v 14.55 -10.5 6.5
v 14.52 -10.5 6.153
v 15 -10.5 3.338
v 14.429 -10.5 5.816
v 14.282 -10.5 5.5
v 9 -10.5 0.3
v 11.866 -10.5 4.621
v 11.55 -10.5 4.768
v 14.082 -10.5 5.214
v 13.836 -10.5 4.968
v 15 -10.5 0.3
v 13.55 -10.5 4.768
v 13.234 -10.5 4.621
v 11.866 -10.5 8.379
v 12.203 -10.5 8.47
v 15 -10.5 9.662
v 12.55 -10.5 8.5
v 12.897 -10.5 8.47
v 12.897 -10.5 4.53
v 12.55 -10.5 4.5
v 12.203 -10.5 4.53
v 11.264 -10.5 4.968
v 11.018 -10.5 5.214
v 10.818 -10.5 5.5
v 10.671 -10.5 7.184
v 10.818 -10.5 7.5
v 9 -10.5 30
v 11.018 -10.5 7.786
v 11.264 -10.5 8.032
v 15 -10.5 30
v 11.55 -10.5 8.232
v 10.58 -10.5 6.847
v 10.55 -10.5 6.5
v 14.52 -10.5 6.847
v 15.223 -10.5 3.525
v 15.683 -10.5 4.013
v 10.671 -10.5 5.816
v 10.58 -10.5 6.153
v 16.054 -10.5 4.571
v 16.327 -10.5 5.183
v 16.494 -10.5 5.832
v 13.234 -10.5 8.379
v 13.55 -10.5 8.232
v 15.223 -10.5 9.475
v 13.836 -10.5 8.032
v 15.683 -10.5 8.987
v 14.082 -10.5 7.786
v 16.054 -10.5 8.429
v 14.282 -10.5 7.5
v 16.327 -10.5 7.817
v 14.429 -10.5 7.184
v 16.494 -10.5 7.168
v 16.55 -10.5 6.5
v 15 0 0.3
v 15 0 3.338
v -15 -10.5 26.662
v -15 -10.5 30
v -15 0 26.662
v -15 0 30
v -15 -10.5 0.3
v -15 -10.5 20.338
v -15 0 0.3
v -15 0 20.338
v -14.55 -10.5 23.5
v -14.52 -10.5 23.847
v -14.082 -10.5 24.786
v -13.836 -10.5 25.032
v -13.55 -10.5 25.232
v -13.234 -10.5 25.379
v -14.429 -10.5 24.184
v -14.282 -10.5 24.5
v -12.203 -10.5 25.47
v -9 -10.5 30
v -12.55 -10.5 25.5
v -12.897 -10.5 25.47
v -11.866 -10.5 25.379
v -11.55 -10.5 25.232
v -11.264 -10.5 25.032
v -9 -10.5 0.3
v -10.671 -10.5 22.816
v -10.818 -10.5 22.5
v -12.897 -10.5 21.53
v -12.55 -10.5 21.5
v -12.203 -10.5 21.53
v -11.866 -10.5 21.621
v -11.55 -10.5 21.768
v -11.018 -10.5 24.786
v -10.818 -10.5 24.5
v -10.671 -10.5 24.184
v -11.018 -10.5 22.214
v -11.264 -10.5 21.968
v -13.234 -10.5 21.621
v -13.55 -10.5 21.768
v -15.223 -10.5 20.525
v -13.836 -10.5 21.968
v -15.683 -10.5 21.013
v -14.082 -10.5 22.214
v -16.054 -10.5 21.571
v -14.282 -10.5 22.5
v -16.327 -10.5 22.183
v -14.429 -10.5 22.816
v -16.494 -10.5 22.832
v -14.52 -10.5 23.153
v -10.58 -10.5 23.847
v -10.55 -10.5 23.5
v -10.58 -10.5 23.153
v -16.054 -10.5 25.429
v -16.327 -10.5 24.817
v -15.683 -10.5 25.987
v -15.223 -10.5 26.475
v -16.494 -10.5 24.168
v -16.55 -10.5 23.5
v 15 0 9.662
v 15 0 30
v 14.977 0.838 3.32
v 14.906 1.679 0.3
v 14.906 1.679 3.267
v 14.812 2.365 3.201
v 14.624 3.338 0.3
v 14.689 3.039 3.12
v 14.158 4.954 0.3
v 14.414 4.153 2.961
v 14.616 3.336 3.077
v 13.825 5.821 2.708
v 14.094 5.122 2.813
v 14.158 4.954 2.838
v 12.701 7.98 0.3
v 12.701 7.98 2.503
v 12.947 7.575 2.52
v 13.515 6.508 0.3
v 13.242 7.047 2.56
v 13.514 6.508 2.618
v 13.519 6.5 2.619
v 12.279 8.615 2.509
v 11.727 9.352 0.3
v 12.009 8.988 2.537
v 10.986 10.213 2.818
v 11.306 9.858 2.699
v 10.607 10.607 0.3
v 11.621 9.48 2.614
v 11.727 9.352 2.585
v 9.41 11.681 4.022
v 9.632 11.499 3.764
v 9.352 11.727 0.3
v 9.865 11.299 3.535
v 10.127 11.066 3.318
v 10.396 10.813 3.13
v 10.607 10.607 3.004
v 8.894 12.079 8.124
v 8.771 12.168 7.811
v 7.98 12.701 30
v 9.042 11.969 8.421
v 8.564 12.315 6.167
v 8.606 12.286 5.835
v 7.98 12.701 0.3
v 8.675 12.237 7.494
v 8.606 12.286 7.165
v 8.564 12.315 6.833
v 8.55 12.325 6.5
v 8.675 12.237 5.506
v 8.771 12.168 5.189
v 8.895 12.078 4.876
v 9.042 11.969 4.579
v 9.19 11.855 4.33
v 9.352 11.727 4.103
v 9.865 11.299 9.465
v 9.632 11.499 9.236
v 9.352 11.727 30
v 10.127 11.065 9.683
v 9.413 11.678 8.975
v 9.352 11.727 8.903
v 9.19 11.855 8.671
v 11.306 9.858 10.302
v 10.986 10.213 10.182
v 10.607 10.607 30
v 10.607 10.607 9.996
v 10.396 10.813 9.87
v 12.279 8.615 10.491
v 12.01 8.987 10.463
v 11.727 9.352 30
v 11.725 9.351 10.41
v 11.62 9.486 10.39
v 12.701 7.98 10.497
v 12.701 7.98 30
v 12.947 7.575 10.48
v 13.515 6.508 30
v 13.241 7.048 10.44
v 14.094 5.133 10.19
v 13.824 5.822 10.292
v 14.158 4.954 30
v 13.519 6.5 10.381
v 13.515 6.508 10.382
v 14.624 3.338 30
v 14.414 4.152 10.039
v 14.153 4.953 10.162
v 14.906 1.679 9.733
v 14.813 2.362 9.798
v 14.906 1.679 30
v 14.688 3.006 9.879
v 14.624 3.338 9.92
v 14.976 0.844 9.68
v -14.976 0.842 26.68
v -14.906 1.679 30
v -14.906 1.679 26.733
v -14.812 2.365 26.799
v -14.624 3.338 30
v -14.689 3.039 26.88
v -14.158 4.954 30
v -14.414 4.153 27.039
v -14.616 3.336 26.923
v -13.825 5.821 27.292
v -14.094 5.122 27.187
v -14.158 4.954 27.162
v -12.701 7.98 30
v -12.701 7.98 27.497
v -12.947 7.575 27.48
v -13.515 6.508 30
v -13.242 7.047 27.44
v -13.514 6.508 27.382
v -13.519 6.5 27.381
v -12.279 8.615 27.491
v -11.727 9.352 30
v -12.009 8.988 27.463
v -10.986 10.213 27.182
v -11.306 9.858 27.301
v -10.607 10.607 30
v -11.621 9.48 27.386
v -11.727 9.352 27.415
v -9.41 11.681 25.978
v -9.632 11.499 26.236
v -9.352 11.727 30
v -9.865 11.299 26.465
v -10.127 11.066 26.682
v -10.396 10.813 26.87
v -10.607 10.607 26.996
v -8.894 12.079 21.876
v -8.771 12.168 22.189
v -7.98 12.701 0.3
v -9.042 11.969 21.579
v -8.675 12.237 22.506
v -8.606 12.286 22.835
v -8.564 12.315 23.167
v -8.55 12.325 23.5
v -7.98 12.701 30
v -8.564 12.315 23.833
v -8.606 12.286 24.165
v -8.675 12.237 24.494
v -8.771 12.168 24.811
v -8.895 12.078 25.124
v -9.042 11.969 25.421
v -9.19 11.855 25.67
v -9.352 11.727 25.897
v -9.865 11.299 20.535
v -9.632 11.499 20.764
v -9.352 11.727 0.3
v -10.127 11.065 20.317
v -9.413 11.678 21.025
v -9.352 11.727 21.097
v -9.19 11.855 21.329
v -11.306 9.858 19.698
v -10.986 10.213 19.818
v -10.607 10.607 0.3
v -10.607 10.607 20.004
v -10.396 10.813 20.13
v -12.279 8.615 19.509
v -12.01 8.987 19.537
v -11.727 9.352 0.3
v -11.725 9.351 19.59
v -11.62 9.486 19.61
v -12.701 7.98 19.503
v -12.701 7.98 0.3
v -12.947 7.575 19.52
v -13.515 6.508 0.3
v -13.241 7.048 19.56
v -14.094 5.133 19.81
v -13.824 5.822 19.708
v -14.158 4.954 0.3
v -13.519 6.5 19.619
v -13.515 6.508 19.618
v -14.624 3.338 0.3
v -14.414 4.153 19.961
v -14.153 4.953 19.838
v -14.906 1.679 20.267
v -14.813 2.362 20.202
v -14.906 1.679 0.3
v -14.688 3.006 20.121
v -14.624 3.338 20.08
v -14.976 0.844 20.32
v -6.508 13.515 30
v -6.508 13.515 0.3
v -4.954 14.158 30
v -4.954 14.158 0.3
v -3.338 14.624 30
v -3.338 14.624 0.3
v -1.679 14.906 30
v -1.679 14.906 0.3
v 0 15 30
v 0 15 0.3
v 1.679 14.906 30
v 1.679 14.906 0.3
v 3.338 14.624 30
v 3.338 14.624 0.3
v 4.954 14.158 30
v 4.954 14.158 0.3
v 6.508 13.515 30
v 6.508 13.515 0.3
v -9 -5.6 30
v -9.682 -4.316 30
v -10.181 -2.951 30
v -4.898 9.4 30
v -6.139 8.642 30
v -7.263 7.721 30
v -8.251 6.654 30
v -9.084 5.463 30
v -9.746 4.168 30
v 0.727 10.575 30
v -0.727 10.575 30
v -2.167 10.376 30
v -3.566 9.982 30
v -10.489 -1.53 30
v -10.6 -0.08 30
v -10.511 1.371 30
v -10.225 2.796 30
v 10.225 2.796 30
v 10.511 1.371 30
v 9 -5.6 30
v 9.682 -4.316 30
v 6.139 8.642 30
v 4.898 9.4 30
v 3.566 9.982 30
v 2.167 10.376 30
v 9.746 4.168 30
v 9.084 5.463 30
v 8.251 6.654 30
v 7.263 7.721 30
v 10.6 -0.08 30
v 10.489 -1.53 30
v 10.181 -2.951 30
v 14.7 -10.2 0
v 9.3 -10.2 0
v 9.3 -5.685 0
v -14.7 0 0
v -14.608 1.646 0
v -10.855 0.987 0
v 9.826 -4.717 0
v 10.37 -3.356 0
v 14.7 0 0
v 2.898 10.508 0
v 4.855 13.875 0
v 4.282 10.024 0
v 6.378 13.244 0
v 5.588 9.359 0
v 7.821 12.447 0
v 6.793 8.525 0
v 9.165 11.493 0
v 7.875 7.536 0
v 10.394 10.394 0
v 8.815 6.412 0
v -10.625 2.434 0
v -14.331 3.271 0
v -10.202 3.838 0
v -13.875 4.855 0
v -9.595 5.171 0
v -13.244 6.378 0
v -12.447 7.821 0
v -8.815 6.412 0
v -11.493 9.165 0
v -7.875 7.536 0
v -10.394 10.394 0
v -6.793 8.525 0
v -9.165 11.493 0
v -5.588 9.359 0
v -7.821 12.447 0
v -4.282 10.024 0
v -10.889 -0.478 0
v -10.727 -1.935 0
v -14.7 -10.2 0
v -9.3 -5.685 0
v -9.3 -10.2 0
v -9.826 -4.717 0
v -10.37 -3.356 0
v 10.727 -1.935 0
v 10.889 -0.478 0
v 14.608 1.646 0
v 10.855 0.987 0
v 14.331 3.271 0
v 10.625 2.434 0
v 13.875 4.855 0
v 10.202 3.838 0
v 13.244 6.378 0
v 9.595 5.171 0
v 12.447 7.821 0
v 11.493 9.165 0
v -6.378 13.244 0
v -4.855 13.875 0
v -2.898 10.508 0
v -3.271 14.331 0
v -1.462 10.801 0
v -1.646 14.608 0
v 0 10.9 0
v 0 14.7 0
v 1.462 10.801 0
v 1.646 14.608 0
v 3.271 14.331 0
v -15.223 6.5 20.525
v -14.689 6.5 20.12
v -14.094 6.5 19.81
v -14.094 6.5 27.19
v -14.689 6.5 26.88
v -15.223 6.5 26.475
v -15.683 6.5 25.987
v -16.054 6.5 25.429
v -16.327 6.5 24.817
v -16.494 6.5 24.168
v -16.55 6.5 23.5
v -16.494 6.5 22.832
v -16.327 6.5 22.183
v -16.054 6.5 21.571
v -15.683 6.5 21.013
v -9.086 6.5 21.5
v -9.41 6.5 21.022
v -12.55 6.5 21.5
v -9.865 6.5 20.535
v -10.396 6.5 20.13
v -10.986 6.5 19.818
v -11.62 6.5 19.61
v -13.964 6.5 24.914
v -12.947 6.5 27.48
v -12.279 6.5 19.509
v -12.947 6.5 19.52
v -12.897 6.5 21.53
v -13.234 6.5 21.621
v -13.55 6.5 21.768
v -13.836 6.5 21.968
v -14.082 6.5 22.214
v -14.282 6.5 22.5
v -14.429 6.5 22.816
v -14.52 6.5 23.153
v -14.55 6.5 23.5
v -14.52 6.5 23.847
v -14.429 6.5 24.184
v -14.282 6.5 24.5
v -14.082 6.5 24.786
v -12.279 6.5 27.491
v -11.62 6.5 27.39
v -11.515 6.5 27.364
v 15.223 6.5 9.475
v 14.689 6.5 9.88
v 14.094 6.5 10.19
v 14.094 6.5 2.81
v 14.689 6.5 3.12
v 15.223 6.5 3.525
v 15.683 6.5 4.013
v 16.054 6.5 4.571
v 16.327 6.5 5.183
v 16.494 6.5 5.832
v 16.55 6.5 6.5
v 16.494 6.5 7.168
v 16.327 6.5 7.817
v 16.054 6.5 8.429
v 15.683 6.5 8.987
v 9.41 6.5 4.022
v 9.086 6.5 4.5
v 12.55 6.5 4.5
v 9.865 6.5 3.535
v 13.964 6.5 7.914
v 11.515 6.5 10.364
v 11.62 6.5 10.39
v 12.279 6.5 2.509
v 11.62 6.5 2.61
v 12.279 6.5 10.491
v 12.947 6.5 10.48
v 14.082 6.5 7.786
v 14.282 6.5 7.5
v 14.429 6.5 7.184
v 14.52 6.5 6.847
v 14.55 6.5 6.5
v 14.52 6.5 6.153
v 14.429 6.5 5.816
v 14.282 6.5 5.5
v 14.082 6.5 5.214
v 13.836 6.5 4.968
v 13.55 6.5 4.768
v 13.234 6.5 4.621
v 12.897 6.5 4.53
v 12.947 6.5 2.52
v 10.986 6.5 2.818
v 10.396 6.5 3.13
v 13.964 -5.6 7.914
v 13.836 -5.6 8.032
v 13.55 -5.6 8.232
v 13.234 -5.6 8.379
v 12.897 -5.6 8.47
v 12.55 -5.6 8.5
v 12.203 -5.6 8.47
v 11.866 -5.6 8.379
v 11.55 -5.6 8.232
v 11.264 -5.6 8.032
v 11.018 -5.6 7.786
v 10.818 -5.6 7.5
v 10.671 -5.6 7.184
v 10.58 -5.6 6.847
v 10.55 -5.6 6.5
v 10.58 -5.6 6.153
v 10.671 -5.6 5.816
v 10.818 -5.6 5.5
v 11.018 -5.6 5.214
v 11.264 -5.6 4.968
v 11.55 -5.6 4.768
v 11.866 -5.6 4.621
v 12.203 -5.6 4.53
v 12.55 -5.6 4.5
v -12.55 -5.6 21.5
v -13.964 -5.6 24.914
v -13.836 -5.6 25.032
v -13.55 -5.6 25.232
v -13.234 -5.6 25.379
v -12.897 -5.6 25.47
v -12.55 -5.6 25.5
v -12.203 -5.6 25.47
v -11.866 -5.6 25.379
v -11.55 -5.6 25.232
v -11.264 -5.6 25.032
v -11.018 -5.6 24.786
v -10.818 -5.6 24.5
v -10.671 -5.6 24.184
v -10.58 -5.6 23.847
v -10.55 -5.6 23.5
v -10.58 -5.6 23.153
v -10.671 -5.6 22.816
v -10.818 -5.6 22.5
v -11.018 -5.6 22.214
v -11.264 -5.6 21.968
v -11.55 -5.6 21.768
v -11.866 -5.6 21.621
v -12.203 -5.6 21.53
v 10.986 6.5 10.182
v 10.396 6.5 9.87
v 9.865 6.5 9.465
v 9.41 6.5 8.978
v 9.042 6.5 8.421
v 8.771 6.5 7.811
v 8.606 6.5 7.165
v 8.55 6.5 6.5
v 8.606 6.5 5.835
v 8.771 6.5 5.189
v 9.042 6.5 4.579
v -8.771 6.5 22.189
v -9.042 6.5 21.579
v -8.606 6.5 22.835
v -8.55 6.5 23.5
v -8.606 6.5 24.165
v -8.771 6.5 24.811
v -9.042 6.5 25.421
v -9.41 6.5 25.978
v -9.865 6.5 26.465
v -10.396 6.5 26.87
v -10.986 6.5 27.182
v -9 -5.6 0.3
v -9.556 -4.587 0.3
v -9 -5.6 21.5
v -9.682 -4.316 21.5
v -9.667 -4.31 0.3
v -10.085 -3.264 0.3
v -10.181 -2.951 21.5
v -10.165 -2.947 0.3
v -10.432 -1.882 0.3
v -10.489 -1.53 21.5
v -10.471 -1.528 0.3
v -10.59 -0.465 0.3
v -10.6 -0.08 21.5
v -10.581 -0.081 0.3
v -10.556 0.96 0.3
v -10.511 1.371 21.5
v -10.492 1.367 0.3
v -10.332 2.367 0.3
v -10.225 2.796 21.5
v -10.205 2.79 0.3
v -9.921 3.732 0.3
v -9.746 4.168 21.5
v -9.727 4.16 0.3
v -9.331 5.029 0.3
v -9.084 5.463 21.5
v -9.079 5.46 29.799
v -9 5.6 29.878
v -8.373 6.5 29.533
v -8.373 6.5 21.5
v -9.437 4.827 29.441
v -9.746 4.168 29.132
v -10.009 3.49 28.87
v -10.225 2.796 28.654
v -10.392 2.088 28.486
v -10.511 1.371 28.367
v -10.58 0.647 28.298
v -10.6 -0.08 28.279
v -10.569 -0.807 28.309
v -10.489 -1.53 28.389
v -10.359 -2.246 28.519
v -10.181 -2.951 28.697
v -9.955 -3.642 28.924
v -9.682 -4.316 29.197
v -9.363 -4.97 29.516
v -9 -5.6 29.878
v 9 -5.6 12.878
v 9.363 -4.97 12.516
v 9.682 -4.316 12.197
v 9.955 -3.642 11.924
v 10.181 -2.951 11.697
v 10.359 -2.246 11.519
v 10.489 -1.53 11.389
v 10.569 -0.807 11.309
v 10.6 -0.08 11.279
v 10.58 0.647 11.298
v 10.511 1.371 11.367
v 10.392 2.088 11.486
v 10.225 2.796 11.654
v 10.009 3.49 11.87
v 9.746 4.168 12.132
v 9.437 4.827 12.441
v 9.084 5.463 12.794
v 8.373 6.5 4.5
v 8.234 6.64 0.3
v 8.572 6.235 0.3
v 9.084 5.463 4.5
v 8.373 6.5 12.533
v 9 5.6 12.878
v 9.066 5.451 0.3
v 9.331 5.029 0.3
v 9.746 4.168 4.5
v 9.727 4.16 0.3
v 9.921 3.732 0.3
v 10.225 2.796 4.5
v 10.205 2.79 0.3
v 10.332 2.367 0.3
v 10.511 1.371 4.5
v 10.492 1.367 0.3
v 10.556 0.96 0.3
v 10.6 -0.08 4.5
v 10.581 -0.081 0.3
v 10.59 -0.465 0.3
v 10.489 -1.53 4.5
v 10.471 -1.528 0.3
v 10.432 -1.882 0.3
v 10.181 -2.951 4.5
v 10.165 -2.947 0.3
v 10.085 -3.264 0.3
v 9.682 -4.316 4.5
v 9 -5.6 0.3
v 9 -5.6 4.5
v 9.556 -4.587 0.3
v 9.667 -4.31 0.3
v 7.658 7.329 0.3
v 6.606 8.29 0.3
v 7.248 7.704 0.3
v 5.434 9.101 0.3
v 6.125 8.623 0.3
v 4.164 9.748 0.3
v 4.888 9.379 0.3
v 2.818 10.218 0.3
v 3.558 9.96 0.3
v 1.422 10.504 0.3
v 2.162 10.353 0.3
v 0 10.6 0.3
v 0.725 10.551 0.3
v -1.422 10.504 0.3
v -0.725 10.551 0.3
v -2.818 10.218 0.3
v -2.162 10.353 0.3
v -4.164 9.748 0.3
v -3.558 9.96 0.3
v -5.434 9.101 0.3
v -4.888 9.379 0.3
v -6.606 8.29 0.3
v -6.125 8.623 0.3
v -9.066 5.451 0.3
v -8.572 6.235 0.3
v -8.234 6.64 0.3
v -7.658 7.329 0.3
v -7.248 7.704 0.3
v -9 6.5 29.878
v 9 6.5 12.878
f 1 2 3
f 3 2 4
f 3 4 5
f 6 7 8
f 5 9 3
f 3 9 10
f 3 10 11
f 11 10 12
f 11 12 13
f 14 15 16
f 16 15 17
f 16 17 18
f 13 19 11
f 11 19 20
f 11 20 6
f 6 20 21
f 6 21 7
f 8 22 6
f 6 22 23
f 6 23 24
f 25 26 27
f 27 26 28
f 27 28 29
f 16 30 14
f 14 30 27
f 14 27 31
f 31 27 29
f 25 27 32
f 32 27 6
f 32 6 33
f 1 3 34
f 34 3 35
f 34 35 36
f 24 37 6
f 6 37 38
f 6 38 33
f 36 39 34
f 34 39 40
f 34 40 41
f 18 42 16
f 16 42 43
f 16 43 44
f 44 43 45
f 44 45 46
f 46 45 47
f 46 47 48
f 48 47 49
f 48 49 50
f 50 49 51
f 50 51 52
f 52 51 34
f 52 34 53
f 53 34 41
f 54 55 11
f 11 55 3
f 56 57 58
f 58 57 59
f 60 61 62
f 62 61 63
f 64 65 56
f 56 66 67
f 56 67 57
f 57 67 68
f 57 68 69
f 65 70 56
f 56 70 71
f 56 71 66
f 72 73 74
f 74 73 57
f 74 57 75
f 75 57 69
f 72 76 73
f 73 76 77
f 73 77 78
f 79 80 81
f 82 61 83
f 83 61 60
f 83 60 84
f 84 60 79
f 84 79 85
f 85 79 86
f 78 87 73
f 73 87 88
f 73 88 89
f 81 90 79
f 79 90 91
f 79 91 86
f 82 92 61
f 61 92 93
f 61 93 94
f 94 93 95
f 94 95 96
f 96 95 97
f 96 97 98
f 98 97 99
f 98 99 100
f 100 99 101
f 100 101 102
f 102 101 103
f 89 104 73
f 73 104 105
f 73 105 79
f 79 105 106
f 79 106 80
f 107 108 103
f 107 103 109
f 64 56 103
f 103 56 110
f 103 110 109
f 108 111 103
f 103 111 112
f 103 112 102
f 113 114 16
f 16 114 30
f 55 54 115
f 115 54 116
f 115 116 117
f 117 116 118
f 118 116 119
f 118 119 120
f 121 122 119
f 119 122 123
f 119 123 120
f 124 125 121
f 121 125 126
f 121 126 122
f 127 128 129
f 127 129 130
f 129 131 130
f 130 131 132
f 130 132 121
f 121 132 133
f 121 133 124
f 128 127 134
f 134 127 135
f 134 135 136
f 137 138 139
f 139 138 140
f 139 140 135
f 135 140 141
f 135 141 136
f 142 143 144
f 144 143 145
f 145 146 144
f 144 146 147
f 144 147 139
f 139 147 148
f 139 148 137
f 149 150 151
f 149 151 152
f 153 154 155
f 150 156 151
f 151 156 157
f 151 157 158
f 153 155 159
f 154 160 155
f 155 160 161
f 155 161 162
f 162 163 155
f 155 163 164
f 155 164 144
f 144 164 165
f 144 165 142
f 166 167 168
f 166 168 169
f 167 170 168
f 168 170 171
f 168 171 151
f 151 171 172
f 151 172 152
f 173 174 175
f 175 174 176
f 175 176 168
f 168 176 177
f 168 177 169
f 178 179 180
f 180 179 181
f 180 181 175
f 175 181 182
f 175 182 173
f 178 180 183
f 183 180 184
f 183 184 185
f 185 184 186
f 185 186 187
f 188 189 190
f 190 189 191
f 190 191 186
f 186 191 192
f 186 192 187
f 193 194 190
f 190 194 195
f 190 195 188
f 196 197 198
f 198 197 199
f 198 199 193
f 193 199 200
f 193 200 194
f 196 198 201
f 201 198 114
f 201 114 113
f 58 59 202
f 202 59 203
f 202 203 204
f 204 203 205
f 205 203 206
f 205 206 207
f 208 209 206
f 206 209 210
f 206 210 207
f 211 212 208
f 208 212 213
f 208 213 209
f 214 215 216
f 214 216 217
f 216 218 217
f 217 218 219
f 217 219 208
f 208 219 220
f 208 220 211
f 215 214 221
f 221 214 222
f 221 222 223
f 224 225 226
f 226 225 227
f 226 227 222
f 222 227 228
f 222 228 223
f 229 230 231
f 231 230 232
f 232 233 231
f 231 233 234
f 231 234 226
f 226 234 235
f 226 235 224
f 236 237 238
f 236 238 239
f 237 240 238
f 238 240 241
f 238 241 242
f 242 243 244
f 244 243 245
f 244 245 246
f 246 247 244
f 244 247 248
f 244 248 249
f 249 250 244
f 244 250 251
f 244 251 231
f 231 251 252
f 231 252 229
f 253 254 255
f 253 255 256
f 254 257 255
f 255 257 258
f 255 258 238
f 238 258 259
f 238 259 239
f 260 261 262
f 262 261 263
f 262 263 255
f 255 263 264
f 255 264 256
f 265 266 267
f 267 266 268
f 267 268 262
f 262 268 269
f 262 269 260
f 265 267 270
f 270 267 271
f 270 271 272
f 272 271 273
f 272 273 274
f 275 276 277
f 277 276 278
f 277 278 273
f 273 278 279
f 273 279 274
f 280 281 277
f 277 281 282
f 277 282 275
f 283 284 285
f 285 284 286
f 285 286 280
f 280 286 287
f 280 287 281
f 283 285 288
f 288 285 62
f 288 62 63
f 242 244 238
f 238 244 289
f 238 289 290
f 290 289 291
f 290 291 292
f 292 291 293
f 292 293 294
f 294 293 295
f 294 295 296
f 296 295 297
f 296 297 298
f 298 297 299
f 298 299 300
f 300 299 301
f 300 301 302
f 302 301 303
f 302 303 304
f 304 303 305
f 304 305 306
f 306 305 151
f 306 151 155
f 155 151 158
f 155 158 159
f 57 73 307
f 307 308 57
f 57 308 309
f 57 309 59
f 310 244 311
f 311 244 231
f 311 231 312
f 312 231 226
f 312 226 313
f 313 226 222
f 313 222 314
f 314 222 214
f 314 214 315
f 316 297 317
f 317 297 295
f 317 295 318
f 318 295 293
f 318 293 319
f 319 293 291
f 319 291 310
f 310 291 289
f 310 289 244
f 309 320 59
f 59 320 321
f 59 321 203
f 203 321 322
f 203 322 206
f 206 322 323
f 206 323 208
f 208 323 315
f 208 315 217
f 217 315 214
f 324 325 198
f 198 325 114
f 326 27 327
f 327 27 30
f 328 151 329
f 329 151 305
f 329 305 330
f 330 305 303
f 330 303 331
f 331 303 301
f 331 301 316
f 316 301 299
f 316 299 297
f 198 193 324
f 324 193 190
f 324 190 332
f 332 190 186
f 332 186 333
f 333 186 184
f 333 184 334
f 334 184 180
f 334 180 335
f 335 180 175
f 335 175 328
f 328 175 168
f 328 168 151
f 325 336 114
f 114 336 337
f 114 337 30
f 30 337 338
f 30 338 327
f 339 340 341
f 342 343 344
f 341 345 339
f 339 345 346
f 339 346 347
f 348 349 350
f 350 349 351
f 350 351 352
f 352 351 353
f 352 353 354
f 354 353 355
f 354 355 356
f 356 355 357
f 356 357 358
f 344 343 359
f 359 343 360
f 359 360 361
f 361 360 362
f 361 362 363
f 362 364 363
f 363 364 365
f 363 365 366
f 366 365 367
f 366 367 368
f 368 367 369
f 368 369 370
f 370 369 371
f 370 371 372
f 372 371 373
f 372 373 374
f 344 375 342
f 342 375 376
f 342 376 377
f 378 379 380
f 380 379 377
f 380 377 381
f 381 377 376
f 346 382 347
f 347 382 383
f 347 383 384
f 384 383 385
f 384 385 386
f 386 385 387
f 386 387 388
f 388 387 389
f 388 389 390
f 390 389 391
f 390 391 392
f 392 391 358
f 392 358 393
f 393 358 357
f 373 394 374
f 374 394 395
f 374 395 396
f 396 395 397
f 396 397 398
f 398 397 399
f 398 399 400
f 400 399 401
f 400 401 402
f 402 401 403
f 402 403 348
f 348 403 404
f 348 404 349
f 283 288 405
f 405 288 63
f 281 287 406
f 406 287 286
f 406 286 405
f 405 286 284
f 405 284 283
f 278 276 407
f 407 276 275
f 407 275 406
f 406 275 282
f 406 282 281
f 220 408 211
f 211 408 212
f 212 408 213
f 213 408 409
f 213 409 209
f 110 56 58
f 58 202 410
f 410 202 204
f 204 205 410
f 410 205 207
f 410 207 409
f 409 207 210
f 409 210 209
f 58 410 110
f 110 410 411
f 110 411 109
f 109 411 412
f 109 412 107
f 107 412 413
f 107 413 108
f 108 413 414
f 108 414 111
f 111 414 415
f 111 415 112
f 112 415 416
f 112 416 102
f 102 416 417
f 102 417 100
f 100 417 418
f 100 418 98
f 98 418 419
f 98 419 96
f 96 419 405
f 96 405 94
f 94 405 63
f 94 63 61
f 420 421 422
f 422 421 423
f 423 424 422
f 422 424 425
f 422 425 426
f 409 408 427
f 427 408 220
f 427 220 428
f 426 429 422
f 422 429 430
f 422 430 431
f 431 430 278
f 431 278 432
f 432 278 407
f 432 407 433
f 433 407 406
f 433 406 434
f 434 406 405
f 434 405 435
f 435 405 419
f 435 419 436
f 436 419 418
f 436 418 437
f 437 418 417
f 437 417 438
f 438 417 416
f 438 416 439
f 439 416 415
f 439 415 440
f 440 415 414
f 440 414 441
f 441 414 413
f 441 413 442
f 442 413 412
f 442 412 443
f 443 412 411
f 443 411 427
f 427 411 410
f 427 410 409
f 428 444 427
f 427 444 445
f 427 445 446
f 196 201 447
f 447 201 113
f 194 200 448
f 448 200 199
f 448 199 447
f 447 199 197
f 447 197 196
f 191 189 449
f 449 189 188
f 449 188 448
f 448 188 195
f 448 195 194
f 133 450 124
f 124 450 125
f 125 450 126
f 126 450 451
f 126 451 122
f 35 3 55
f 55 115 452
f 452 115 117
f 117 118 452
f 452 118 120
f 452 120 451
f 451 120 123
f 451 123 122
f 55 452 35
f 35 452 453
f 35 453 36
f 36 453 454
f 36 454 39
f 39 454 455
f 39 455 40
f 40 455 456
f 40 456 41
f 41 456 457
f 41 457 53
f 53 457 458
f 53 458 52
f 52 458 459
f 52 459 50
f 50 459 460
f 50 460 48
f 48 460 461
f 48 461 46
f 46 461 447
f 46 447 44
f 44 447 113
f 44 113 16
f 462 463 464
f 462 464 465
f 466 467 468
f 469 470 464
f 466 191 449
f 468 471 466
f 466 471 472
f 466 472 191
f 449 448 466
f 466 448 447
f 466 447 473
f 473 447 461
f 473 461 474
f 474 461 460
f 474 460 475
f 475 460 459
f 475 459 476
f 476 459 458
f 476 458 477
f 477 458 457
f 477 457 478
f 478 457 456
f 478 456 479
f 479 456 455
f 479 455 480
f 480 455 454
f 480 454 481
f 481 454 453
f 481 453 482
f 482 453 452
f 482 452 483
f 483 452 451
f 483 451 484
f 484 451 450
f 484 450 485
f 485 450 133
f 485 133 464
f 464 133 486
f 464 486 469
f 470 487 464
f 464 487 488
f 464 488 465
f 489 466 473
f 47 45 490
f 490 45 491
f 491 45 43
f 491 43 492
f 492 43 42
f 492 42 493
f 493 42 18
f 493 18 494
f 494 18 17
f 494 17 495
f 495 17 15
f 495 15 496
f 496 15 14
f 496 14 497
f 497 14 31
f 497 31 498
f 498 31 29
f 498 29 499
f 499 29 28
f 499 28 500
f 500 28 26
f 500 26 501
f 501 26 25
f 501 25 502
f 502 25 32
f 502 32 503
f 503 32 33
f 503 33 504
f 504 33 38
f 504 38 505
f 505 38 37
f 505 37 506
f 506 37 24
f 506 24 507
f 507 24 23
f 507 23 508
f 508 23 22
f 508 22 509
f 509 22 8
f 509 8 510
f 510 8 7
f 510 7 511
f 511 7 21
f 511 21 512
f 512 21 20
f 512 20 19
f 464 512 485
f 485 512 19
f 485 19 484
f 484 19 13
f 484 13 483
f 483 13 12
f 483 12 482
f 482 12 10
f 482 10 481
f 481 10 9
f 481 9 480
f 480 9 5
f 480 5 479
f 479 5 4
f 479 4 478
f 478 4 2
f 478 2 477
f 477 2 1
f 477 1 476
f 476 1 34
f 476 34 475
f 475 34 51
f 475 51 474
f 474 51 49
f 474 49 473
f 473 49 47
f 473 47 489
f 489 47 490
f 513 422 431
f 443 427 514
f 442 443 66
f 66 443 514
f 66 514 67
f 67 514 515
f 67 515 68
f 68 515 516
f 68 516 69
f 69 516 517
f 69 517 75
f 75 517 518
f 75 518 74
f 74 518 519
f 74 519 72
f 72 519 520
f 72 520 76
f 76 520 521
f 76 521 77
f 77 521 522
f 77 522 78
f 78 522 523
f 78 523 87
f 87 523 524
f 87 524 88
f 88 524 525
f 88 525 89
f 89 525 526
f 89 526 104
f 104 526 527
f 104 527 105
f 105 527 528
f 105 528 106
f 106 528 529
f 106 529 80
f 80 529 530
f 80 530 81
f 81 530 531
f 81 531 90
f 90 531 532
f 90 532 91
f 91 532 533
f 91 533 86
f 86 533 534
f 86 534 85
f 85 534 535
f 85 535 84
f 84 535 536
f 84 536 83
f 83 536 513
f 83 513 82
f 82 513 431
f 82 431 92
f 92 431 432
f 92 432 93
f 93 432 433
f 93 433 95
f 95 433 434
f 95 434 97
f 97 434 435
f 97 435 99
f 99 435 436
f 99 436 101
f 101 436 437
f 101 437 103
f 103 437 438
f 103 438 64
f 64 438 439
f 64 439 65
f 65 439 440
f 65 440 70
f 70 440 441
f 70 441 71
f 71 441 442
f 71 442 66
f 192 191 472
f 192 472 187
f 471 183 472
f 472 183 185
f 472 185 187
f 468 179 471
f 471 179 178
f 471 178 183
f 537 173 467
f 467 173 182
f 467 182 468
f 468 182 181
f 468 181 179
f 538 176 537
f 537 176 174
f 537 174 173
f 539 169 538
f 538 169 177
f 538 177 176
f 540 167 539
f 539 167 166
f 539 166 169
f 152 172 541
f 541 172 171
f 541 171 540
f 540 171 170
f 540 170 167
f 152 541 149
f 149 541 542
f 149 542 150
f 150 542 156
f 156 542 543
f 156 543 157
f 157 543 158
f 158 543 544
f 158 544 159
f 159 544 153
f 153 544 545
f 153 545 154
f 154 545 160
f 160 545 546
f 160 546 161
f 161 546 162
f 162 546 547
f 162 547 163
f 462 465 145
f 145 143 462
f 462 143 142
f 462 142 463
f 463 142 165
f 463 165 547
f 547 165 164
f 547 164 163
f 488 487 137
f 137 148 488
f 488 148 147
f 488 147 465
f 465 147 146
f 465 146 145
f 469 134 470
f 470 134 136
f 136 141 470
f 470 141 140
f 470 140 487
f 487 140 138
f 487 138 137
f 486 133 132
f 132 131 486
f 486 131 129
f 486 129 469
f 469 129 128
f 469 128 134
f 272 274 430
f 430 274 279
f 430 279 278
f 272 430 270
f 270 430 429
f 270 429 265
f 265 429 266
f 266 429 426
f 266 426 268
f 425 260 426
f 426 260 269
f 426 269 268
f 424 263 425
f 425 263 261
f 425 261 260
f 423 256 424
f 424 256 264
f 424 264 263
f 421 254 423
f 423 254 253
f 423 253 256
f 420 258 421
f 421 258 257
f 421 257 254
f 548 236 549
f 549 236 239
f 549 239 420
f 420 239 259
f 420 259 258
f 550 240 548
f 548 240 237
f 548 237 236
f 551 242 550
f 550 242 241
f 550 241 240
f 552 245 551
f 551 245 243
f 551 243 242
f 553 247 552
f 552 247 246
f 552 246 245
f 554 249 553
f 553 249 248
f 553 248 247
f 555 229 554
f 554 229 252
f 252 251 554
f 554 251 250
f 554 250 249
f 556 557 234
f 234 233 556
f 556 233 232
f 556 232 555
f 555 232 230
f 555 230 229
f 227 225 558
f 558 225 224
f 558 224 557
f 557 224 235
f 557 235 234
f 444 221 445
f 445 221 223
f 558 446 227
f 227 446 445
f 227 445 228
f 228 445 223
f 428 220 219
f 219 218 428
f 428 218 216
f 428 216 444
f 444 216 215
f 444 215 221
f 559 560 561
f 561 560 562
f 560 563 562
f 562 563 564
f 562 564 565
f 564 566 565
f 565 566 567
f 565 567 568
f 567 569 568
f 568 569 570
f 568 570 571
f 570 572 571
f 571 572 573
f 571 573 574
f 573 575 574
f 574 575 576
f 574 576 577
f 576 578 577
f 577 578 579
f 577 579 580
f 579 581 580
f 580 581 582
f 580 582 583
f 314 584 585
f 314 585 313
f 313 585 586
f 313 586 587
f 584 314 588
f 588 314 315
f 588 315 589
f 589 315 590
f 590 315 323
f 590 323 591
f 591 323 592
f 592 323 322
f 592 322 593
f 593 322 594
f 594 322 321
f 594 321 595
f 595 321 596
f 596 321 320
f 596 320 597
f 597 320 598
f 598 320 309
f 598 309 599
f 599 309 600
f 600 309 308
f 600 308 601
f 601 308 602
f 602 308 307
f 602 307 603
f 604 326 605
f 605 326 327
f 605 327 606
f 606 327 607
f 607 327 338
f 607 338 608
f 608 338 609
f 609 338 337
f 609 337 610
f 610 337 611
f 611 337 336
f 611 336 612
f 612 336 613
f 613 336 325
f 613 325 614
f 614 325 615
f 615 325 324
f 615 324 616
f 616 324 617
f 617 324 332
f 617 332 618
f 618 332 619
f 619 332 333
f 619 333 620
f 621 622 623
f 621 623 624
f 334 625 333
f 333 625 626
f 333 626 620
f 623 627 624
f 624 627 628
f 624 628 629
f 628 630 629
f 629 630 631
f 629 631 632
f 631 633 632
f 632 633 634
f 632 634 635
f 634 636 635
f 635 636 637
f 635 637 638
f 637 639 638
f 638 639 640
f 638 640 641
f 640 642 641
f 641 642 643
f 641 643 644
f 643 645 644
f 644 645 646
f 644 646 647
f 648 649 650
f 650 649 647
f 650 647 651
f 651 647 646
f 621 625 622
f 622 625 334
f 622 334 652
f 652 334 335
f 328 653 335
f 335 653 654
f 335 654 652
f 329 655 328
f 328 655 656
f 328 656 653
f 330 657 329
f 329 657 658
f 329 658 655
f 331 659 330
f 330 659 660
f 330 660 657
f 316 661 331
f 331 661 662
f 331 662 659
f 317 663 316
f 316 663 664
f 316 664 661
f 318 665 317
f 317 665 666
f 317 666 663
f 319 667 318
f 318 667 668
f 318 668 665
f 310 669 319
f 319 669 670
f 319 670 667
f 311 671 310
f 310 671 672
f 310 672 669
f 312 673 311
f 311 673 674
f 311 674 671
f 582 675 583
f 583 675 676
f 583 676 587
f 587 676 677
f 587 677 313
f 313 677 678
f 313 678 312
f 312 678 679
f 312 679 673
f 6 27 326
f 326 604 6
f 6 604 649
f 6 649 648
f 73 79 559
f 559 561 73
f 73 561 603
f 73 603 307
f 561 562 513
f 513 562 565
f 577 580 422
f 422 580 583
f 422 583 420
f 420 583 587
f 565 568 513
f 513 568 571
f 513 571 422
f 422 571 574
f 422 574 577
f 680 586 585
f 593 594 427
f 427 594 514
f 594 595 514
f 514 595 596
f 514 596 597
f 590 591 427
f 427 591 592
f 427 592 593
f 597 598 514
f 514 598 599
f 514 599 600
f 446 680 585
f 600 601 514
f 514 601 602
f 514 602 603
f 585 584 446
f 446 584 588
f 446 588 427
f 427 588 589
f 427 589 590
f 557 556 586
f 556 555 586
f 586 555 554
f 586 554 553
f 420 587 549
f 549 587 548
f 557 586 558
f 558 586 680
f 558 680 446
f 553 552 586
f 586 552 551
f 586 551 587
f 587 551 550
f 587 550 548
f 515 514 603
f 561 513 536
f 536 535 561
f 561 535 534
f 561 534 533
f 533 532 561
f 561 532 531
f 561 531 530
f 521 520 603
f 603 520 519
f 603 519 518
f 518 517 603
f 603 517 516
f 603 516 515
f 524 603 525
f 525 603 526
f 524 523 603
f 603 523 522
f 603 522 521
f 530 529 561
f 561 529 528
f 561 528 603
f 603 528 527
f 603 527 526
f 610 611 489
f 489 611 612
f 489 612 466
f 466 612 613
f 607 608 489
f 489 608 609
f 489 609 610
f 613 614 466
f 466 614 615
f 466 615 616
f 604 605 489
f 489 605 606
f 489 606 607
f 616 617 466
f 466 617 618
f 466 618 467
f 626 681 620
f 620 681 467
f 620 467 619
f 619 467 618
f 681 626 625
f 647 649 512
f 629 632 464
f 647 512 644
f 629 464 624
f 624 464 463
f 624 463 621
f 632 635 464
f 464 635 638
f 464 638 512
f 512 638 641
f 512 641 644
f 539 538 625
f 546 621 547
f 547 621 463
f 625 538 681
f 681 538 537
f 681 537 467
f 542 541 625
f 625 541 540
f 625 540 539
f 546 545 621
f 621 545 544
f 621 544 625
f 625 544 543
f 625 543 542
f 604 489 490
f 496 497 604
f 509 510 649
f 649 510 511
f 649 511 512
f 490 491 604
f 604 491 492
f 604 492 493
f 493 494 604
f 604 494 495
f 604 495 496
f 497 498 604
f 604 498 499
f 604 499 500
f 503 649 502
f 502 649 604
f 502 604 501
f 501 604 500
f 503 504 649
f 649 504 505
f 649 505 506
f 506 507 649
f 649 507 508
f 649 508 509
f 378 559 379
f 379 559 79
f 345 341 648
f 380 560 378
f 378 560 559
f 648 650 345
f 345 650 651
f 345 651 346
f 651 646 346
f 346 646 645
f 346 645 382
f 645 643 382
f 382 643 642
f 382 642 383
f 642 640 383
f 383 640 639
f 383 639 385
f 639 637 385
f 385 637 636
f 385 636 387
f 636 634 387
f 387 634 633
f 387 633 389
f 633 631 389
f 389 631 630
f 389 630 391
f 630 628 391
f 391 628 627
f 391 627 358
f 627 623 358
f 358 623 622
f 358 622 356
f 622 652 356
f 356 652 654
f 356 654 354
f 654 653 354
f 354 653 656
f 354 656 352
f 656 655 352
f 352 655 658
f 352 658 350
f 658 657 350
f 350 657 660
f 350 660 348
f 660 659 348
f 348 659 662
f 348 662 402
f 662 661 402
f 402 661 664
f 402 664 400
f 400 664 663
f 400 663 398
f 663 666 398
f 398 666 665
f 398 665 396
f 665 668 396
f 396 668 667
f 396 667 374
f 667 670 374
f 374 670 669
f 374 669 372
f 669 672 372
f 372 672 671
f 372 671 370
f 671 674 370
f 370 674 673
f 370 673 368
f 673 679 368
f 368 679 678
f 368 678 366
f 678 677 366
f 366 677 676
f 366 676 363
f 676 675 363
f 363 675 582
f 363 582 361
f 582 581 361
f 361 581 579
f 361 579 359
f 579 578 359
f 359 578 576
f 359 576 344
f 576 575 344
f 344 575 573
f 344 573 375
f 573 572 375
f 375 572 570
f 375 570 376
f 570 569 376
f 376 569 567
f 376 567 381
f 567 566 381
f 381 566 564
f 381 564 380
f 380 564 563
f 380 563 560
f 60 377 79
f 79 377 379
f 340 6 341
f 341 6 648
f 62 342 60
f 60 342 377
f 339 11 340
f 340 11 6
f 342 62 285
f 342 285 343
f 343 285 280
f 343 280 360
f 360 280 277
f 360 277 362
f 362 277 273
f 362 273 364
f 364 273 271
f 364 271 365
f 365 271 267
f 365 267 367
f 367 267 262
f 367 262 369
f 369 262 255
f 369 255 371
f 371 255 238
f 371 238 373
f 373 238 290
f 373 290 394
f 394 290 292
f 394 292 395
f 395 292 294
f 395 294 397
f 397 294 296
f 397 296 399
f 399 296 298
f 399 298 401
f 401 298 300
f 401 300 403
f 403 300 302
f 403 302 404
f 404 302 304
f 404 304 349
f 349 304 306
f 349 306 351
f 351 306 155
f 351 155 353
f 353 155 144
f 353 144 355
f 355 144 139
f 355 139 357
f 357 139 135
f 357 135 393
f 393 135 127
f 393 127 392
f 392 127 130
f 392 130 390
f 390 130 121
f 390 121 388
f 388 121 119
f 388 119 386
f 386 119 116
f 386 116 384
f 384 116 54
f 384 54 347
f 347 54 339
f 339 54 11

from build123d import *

# Parameters (mm, degrees)
BOSS_EXTRUDE1_DEPTH     = 30
BOSS_EXTRUDE2_DEPTH     = 17
SKETCH2_R               = 2
CUT_EXTRUDE7_DEPTH      = 26.5000001
CUT_EXTRUDE2_START      = -17
SKETCH3_R               = 4
CUT_EXTRUDE2_DEPTH      = 9.5000001
CUT_EXTRUDE3_DEPTH      = 31.0000001
CUT_EXTRUDE8_DEPTH      = 6.5
CUT_EXTRUDE8_DEPTH_BACK = 5.6
CHAMFER1_SIZE           = 0.3


with BuildPart() as part:
    # Sketch1 → Boss-Extrude1 (new body)
    with BuildSketch(Plane.XY):
        with BuildLine():
            Line((-9, -10.5), (9, -10.5))
            Line((9, -10.5), (15, -10.5))
            Line((15, -10.5), (15, 0))
            ThreePointArc((15, 0), (0, 15), (-15, 0))
            Line((-15, 0), (-15, -10.5))
            Line((-15, -10.5), (-9, -10.5))
        make_face()
    extrude(amount=BOSS_EXTRUDE1_DEPTH)

    # Sketch4 → Boss-Extrude2 (add)
    with BuildSketch(Plane.XZ.offset(10.5)):
        with BuildLine():
            Line((-12.55, 27.5), (-12.55, 19.5))
            ThreePointArc((-12.55, 19.5), (-16.55, 23.5), (-12.55, 27.5))
        make_face()
        with BuildLine():
            Line((12.55, 2.5), (12.55, 10.5))
            ThreePointArc((12.55, 10.5), (16.55, 6.5), (12.55, 2.5))
        make_face()
    extrude(amount=-BOSS_EXTRUDE2_DEPTH)

    # Sketch2 → Cut-Extrude7 (cut, through all)
    with BuildSketch(Plane.XZ.offset(10.5)):
        with Locations((12.55, 6.5)):
            Circle(SKETCH2_R)
        with Locations((-12.55, 23.5)):
            Circle(SKETCH2_R)
    extrude(amount=-CUT_EXTRUDE7_DEPTH, mode=Mode.SUBTRACT)

    # Sketch3 → Cut-Extrude2 (cut, through all)
    with BuildSketch(Plane.XZ.offset(10.5).offset(CUT_EXTRUDE2_START)):
        with Locations((12.55, 6.5)):
            Circle(SKETCH3_R)
        with Locations((-12.55, 23.5)):
            Circle(SKETCH3_R)
    extrude(amount=-CUT_EXTRUDE2_DEPTH, mode=Mode.SUBTRACT)

    # Sketch5 → Cut-Extrude3 (cut, through all)
    with BuildSketch(Plane.XY.offset(30)):
        with BuildLine():
            Line((-9, -10.5), (9, -10.5))
            Line((9, -10.5), (9, -5.6))
            ThreePointArc((9, -5.6), (0, 10.6), (-9, -5.6))
            Line((-9, -5.6), (-9, -10.5))
        make_face()
    extrude(amount=-CUT_EXTRUDE3_DEPTH, mode=Mode.SUBTRACT)

    # Sketch6 → Cut-Extrude8 (cut, two sides)
    with BuildSketch(Plane(origin=(0, 0, 0), x_dir=(1, 0, 0), z_dir=(0, 1, 0))) as cut_extrude8_sk:
        Polygon((0, -24.914213562), (0, -21.5), (-12.55, -21.5), (-13.964213562, -24.914213562), (-9, -29.878427125), align=None)
        Polygon((0, -7.914213562), (0, -4.5), (12.55, -4.5), (13.964213562, -7.914213562), (9, -12.878427125), align=None)
    extrude(amount=CUT_EXTRUDE8_DEPTH, mode=Mode.SUBTRACT)
    extrude(cut_extrude8_sk.sketch, amount=-CUT_EXTRUDE8_DEPTH_BACK, mode=Mode.SUBTRACT)

    # Chamfer1
    chamfer1_edges = [part.edges().sort_by_distance(p)[0] for p in [
        (0, 15, 0),
        (15, -5.25, 0),
        (-12, -10.5, 0),
        (-15, -5.25, 0),
        (12, -10.5, 0),
        (0, 10.6, 0),
        (9, -8.05, 0),
        (-9, -8.05, 0),
    ]]
    chamfer(chamfer1_edges, length=CHAMFER1_SIZE)


solid = part.part
